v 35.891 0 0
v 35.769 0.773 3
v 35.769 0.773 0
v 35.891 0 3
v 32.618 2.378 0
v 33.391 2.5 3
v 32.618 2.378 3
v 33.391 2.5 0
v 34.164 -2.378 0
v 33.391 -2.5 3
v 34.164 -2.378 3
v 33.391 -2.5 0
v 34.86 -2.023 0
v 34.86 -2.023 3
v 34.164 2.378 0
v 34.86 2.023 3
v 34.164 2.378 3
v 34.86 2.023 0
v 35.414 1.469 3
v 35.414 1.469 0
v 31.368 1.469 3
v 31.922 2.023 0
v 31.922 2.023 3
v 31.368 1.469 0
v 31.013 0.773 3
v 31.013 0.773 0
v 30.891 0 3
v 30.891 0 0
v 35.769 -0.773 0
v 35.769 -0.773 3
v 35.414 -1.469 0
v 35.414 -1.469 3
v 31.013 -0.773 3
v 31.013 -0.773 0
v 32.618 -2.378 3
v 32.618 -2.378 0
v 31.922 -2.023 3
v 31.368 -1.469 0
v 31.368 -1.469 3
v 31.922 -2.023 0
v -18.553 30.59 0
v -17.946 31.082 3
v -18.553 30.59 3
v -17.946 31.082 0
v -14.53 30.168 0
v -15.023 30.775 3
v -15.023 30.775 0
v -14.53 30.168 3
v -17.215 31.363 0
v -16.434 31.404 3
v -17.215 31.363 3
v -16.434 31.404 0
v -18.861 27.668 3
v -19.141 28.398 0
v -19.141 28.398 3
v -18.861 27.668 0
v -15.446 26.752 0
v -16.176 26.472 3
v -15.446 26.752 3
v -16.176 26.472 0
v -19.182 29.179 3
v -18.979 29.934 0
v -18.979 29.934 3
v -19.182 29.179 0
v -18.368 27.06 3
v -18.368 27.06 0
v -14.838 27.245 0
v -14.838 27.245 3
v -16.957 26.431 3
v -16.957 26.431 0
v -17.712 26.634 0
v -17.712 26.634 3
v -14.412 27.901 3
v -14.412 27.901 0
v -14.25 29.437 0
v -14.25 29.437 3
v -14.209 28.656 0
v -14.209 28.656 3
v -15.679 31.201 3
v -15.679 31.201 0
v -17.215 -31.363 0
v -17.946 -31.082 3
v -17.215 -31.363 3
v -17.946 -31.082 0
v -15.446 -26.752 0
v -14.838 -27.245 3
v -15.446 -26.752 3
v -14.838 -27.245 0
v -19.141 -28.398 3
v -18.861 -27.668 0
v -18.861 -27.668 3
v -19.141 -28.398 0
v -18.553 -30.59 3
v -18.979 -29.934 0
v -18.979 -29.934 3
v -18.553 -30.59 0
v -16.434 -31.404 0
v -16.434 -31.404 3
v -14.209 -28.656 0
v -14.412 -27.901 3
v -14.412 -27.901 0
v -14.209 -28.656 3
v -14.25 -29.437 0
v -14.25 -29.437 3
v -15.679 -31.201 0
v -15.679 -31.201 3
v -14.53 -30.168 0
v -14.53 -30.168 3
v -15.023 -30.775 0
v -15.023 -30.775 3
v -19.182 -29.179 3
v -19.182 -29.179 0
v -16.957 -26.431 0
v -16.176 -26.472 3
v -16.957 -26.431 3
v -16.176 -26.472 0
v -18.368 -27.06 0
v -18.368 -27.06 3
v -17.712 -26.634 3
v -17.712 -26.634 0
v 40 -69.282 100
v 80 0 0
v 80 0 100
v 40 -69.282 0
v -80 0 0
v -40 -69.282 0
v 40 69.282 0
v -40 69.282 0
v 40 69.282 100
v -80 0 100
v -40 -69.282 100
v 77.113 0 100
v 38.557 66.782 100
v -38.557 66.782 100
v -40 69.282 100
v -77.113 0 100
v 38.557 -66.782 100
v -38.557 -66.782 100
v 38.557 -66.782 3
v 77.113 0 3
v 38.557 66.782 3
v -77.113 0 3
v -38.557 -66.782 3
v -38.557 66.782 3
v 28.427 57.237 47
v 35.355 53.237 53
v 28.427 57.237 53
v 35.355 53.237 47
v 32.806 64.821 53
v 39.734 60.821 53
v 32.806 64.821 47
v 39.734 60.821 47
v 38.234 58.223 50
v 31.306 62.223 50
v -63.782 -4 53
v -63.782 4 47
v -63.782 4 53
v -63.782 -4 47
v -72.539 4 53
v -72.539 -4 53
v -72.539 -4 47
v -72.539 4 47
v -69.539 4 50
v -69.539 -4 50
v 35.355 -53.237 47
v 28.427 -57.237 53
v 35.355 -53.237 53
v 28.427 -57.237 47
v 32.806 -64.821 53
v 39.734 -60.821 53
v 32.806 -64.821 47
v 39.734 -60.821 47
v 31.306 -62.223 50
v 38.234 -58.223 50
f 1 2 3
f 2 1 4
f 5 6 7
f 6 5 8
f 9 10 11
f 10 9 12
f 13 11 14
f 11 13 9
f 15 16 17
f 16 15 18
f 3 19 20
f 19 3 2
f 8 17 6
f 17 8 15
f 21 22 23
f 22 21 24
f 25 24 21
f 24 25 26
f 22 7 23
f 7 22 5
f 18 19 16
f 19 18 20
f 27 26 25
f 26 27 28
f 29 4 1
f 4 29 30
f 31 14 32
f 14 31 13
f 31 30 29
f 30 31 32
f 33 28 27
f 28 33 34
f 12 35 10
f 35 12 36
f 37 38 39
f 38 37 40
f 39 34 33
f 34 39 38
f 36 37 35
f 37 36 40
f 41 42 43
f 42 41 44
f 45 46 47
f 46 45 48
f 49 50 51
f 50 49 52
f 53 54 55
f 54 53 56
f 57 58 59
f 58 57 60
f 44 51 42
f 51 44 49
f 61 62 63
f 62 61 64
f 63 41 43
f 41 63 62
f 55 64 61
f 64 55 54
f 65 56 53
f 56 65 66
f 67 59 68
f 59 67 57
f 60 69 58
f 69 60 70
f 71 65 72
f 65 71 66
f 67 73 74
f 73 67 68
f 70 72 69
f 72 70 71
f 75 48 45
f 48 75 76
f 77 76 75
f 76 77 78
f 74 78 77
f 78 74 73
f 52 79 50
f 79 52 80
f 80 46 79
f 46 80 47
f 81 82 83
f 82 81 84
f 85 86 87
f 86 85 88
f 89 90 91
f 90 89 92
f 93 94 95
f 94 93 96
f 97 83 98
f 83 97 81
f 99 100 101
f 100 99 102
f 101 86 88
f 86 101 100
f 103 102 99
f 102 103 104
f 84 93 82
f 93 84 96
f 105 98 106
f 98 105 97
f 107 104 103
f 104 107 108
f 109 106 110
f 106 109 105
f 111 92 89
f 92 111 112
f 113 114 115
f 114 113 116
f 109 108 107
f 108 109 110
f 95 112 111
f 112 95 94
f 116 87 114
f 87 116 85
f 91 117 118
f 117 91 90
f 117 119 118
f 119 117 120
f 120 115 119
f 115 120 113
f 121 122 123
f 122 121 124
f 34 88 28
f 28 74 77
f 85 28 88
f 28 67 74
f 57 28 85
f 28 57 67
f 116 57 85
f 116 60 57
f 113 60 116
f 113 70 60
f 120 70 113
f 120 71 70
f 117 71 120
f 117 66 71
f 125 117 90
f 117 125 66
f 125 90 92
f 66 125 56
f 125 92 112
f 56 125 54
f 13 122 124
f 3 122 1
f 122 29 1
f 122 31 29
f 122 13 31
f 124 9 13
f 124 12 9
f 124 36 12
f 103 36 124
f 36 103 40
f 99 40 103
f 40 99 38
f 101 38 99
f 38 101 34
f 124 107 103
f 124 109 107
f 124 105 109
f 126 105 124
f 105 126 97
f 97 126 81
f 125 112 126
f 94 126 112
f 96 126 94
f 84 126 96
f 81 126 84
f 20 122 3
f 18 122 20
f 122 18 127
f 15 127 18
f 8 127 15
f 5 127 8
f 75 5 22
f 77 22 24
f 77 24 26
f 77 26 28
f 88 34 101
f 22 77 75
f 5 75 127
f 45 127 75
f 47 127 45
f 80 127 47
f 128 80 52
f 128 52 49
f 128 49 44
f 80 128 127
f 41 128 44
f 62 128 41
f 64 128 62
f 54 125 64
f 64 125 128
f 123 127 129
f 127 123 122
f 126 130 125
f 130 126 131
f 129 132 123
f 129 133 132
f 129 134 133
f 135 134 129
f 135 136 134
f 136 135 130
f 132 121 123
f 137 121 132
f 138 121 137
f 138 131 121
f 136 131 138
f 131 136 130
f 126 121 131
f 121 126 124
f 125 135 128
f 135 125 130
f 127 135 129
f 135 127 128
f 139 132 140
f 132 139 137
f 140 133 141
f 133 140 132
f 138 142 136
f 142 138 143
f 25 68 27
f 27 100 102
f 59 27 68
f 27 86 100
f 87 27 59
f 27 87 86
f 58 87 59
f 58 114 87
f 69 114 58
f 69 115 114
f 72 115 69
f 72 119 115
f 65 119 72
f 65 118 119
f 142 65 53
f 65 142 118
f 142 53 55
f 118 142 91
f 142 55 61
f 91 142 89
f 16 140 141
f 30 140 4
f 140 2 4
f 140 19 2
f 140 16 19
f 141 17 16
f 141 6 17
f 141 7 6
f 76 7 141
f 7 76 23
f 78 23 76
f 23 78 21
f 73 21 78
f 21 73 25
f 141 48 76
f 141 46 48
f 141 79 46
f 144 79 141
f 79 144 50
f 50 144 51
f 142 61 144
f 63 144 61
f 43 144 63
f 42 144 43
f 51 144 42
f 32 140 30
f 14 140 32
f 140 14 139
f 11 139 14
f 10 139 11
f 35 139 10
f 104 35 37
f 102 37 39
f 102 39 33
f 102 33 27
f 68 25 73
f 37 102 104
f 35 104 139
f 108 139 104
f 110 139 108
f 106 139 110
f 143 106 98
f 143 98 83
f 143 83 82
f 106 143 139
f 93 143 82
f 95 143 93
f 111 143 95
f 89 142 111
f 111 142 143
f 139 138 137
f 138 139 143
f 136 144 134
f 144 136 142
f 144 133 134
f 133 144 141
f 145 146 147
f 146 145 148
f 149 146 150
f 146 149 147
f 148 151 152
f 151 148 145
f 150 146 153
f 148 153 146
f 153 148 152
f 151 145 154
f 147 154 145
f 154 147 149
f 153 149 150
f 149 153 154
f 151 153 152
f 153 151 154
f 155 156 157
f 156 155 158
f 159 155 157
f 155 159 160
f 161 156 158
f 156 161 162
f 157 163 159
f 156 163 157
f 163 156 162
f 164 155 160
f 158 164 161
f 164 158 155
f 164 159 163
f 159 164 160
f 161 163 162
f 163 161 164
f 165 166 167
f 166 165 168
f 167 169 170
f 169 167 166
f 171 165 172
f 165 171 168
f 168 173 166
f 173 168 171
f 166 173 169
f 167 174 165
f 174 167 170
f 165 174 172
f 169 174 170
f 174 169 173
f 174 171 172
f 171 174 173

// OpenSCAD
// Modular Planter - Large (Large plant planter)
// Generated by customizer.py

// Parameters
hex_size = 80;
height = 100;
wall_thickness = 2.5;
bottom_thickness = 3;
drainage_hole_d = 5;
connector_depth = 5;
connector_tolerance = 0.3;

// Derived values
apothem = hex_size * sqrt(3) / 2;
inner_apothem = apothem - wall_thickness;

// Main planter module
module planter_module() {
    difference() {
        linear_extrude(height = height)
            hexagon(apothem);
        
        translate([0, 0, bottom_thickness])
            linear_extrude(height = height - bottom_thickness + 1)
                hexagon(inner_apothem);
        
        for (i = [0:2]) {
            rotate([0, 0, i * 120])
                translate([inner_apothem * 0.5, 0, -1])
                    cylinder(d = drainage_hole_d, h = bottom_thickness + 2, $fn=20);
        }
    }
    
    for (i = [0:2]) {
        rotate([0, 0, i * 120 + 60])
            translate([apothem - 0.5, 0, height * 0.5])
                connector_male();
    }
}

module hexagon(r) {
    circle(r = r / cos(30), $fn = 6);
}

module connector_male() {
    difference() {
        cube([connector_depth * 2, 8, 6], center = true);
        translate([connector_depth, 0, 0])
            rotate([0, 45, 0])
                cube([6, 10, 6], center = true);
    }
}

planter_module();
